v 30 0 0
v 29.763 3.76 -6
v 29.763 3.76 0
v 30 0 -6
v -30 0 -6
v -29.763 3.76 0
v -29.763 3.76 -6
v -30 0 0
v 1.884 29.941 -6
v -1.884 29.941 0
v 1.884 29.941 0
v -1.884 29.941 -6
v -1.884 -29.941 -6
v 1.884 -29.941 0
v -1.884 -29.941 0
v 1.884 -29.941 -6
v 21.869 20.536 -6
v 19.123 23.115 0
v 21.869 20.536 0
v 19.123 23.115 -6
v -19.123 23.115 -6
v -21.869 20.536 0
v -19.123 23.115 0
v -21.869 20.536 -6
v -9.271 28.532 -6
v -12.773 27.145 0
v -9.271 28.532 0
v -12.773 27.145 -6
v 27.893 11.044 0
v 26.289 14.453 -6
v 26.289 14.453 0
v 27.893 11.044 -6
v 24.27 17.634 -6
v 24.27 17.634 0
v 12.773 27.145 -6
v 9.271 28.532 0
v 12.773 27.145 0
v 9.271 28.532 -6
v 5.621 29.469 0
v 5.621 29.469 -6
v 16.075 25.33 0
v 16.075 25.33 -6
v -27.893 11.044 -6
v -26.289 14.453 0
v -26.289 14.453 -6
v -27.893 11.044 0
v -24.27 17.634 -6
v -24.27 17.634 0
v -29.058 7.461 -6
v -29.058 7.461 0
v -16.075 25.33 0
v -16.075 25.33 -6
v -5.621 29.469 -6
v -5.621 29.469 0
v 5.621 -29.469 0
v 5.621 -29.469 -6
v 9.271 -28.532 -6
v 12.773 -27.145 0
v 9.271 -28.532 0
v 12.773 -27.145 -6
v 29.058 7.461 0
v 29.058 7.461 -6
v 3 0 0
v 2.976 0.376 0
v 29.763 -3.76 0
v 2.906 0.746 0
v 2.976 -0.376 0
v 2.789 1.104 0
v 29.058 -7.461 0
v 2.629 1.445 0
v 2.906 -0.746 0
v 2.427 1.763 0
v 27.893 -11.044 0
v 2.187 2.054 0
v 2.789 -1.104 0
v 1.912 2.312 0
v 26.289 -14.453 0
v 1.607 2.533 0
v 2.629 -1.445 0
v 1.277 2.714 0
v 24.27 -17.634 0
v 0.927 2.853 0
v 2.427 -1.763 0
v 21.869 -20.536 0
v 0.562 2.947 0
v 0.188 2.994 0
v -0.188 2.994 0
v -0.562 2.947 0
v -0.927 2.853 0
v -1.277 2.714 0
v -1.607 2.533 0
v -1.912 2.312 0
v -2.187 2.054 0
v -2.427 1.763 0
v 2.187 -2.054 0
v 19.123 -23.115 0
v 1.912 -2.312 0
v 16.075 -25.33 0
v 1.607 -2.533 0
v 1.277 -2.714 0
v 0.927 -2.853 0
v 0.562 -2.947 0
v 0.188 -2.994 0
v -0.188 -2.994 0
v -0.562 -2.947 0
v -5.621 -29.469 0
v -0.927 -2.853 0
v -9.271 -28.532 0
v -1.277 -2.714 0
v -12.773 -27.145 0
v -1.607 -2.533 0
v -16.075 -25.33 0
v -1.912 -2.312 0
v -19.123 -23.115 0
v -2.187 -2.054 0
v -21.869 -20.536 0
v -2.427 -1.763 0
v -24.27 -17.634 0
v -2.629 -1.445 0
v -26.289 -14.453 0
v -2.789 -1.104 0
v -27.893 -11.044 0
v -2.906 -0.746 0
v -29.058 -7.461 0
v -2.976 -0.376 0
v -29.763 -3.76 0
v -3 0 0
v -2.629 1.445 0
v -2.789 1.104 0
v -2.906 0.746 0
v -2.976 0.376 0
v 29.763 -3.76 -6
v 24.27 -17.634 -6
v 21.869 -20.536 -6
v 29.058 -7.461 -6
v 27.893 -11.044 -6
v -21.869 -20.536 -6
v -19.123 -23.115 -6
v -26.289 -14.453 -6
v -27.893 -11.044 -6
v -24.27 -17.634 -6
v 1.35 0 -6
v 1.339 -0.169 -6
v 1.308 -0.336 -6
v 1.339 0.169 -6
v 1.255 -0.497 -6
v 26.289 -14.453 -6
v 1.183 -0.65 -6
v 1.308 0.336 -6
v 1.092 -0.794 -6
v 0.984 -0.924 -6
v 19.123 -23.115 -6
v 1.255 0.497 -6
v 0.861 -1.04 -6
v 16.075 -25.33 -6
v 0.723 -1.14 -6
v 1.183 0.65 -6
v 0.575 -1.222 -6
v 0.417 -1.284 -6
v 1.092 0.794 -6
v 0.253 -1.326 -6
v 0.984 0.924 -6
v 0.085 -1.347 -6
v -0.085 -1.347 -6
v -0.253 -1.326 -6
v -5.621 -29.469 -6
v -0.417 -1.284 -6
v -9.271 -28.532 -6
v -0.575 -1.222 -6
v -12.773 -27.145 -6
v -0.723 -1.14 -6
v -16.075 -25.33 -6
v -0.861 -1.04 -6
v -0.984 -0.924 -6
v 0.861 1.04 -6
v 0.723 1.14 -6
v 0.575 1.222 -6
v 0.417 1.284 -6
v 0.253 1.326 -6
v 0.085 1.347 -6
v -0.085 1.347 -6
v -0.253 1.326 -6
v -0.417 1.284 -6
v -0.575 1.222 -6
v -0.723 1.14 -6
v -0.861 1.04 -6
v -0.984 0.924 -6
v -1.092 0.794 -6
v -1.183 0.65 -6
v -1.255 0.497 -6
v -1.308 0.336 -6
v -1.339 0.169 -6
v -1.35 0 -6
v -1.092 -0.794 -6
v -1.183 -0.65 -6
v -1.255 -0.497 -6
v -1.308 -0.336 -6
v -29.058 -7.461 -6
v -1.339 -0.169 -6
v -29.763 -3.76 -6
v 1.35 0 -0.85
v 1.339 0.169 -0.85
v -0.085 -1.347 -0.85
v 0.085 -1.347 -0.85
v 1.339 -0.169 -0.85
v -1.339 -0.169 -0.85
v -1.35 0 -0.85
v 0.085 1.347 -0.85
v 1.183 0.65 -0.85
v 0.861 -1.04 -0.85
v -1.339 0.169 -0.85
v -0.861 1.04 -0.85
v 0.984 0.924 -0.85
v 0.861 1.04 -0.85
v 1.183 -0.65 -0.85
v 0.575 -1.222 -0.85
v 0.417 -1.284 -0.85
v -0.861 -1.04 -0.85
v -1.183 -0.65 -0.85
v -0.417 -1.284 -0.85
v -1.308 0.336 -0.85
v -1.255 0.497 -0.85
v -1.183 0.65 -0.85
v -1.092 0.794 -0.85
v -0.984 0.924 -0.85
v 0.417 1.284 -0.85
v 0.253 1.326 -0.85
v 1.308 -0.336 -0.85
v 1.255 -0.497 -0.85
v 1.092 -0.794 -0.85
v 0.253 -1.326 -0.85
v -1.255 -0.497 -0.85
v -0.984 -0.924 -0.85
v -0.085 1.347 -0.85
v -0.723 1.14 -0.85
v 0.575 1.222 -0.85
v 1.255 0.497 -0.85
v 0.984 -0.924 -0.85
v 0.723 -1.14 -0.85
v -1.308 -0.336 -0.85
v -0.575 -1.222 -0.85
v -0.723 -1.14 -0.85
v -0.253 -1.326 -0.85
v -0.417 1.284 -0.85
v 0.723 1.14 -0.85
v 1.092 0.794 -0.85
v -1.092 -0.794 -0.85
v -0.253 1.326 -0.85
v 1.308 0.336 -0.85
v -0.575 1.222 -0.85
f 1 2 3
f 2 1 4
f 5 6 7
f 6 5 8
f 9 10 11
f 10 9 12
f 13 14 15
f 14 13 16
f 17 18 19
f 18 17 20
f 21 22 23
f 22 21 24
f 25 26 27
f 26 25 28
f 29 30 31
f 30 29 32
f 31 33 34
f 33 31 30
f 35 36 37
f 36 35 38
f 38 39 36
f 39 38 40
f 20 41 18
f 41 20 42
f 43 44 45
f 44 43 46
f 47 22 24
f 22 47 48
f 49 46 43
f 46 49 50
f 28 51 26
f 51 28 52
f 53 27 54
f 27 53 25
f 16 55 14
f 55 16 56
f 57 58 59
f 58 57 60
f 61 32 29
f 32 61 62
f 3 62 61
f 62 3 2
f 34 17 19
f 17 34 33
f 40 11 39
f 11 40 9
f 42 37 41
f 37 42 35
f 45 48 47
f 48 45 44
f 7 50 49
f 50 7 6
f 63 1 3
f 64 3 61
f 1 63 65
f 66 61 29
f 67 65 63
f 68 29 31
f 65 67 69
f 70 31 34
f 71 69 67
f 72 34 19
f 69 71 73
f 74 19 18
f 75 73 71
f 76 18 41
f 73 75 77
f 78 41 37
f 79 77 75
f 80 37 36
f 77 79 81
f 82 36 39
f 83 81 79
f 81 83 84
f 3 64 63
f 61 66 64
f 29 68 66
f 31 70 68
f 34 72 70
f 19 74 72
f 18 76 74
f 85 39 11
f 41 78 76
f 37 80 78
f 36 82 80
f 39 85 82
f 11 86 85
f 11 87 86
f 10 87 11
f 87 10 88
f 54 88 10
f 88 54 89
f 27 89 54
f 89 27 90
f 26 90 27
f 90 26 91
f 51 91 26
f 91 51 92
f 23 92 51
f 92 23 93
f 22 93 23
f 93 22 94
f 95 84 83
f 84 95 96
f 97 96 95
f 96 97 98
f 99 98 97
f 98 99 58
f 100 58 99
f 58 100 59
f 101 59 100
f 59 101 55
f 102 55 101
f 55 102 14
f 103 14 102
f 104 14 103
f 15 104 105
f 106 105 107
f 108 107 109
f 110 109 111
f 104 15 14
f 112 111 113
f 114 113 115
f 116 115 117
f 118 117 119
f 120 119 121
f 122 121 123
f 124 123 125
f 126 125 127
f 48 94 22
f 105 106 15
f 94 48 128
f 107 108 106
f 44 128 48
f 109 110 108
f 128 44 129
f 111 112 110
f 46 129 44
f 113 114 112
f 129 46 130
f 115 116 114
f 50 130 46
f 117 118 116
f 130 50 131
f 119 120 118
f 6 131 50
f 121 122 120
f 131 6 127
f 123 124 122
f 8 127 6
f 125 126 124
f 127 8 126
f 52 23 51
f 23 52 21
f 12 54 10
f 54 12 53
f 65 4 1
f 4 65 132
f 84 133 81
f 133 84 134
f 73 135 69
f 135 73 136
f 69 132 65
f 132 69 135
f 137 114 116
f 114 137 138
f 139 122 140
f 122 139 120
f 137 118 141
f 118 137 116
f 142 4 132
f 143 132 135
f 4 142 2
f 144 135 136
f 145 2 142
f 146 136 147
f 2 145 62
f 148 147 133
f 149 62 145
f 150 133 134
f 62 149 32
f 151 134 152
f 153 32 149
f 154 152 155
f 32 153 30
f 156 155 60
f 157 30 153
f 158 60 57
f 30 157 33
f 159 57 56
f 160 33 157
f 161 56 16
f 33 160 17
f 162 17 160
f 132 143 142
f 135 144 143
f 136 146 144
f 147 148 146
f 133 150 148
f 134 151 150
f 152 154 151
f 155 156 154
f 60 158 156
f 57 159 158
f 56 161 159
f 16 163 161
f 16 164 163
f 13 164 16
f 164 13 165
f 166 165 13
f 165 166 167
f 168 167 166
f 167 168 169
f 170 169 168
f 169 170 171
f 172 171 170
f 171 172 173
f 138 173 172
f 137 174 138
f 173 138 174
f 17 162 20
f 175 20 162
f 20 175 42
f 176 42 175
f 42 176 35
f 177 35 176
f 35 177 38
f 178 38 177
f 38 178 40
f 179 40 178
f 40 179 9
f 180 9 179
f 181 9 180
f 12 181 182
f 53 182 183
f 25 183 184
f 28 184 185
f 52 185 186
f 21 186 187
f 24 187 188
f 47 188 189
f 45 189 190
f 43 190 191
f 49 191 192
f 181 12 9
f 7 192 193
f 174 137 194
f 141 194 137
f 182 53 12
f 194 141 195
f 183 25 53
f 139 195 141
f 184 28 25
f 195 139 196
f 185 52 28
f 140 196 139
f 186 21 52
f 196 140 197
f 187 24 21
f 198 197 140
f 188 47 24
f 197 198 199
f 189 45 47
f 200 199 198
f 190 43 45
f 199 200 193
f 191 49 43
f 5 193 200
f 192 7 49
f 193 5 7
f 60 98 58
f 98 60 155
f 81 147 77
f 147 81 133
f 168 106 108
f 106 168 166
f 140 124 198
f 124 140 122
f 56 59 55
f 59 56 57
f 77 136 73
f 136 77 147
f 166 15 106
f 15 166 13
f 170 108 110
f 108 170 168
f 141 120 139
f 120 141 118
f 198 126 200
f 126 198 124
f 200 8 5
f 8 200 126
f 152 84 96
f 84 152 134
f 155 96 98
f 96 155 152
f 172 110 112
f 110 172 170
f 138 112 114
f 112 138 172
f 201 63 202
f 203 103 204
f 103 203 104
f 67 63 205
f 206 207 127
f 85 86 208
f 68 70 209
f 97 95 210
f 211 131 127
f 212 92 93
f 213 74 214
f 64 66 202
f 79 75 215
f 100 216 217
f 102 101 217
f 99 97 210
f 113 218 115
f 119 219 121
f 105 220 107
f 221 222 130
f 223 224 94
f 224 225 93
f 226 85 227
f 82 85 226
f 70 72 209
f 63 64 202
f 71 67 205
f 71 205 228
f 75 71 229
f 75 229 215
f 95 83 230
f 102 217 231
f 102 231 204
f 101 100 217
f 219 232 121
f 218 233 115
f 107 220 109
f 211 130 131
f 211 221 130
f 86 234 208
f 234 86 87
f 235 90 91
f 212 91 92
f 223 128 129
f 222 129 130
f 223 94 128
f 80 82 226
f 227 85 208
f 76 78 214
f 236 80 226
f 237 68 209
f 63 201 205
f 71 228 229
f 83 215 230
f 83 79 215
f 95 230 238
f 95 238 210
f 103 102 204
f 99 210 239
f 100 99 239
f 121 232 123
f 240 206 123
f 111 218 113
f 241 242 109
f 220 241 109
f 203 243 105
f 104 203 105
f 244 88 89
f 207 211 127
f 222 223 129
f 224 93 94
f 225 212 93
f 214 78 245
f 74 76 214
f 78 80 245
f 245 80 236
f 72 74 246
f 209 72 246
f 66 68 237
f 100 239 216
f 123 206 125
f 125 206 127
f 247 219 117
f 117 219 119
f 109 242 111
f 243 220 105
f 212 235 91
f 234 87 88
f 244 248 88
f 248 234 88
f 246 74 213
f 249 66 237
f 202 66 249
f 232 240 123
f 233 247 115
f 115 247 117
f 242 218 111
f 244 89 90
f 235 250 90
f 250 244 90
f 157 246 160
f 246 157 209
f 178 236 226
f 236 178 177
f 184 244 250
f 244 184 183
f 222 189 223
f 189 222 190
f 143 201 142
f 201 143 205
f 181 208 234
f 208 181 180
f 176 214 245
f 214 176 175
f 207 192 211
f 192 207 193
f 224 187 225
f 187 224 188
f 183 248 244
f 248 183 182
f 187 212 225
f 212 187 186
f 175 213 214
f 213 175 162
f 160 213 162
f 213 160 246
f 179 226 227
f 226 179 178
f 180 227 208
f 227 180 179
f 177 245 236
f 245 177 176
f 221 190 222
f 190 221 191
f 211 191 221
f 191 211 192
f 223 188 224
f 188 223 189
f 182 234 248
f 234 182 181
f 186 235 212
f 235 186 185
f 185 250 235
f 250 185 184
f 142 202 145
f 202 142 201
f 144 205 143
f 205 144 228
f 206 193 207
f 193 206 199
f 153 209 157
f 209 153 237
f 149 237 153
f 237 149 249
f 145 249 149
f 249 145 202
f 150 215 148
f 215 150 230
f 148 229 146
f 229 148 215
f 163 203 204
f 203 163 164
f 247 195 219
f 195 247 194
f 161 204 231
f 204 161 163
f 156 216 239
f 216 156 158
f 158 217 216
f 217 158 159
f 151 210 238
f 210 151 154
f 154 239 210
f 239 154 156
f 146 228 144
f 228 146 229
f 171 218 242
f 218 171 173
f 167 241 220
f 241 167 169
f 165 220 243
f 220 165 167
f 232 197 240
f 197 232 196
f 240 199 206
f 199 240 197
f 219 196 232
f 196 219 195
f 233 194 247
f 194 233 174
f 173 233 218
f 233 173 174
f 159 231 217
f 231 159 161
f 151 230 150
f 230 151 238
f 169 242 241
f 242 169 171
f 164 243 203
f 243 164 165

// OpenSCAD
$fn = 50;


difference() {
	union() {
		translate(v = [0, 0, -6.0000000000]) {
			cylinder(h = 6, r = 30.0000000000);
		}
		translate(v = [0, 0, -6.0000000000]) {
			cylinder(h = 6, r = 2.8750000000);
		}
	}
	union() {
		translate(v = [0, 0, 0]) {
			rotate(a = [0, 0, 0]) {
				difference() {
					union() {
						translate(v = [0, 0, -6.0000000000]) {
							cylinder(h = 6, r = 1.0000000000);
						}
						translate(v = [0, 0, -0.8500000000]) {
							cylinder(h = 0.8500000000, r1 = 1.3500000000, r2 = 3.0000000000);
						}
						translate(v = [0, 0, -6.0000000000]) {
							cylinder(h = 6, r = 1.3500000000);
						}
						translate(v = [0, 0, -6.0000000000]) {
							cylinder(h = 6, r = 1.0000000000);
						}
					}
					union();
				}
			}
		}
	}
}
